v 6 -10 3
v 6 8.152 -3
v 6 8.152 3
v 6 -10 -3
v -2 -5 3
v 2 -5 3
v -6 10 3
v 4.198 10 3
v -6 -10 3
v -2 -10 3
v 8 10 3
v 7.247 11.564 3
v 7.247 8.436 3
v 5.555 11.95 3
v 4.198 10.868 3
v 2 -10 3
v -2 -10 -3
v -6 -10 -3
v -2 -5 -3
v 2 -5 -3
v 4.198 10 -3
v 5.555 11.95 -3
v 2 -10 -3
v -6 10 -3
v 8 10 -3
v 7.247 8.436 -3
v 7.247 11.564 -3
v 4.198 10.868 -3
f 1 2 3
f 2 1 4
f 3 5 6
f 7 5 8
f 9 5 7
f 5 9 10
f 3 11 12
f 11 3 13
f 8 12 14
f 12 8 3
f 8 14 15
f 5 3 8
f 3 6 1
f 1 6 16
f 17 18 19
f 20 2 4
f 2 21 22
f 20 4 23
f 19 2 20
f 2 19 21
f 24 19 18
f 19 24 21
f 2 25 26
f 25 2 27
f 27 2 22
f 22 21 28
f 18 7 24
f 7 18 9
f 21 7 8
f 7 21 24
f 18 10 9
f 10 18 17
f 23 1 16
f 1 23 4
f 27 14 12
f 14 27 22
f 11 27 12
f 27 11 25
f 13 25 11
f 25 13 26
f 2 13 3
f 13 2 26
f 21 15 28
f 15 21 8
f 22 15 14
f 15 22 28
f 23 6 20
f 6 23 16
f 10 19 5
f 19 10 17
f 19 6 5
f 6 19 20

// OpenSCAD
// Clip dimensions
clip_width = 12;
clip_height = 22;
clip_thickness = 6;
cutout_width = 4;
cutout_height = 6;
top_curve_radius = 2; // Reduced to make the top slightly curved but not overly rounded

// Module to create the clip
module clip() {
    difference() {
        // Main body of the clip (rectangular with a slightly curved top)
        union() {
            cube([clip_width, clip_height - top_curve_radius, clip_thickness], center=true);
            translate([clip_width / 2, (clip_height - top_curve_radius) / 2, 0])
                cylinder(r=top_curve_radius, h=clip_thickness, center=true);
        }
        
        // More defined and narrower U-shaped cutout at the bottom
        translate([-cutout_width / 2, -clip_height / 2, -clip_thickness])
            cube([cutout_width, cutout_height, clip_thickness * 2], center=false);
    }
}

// Render the clip
clip();
